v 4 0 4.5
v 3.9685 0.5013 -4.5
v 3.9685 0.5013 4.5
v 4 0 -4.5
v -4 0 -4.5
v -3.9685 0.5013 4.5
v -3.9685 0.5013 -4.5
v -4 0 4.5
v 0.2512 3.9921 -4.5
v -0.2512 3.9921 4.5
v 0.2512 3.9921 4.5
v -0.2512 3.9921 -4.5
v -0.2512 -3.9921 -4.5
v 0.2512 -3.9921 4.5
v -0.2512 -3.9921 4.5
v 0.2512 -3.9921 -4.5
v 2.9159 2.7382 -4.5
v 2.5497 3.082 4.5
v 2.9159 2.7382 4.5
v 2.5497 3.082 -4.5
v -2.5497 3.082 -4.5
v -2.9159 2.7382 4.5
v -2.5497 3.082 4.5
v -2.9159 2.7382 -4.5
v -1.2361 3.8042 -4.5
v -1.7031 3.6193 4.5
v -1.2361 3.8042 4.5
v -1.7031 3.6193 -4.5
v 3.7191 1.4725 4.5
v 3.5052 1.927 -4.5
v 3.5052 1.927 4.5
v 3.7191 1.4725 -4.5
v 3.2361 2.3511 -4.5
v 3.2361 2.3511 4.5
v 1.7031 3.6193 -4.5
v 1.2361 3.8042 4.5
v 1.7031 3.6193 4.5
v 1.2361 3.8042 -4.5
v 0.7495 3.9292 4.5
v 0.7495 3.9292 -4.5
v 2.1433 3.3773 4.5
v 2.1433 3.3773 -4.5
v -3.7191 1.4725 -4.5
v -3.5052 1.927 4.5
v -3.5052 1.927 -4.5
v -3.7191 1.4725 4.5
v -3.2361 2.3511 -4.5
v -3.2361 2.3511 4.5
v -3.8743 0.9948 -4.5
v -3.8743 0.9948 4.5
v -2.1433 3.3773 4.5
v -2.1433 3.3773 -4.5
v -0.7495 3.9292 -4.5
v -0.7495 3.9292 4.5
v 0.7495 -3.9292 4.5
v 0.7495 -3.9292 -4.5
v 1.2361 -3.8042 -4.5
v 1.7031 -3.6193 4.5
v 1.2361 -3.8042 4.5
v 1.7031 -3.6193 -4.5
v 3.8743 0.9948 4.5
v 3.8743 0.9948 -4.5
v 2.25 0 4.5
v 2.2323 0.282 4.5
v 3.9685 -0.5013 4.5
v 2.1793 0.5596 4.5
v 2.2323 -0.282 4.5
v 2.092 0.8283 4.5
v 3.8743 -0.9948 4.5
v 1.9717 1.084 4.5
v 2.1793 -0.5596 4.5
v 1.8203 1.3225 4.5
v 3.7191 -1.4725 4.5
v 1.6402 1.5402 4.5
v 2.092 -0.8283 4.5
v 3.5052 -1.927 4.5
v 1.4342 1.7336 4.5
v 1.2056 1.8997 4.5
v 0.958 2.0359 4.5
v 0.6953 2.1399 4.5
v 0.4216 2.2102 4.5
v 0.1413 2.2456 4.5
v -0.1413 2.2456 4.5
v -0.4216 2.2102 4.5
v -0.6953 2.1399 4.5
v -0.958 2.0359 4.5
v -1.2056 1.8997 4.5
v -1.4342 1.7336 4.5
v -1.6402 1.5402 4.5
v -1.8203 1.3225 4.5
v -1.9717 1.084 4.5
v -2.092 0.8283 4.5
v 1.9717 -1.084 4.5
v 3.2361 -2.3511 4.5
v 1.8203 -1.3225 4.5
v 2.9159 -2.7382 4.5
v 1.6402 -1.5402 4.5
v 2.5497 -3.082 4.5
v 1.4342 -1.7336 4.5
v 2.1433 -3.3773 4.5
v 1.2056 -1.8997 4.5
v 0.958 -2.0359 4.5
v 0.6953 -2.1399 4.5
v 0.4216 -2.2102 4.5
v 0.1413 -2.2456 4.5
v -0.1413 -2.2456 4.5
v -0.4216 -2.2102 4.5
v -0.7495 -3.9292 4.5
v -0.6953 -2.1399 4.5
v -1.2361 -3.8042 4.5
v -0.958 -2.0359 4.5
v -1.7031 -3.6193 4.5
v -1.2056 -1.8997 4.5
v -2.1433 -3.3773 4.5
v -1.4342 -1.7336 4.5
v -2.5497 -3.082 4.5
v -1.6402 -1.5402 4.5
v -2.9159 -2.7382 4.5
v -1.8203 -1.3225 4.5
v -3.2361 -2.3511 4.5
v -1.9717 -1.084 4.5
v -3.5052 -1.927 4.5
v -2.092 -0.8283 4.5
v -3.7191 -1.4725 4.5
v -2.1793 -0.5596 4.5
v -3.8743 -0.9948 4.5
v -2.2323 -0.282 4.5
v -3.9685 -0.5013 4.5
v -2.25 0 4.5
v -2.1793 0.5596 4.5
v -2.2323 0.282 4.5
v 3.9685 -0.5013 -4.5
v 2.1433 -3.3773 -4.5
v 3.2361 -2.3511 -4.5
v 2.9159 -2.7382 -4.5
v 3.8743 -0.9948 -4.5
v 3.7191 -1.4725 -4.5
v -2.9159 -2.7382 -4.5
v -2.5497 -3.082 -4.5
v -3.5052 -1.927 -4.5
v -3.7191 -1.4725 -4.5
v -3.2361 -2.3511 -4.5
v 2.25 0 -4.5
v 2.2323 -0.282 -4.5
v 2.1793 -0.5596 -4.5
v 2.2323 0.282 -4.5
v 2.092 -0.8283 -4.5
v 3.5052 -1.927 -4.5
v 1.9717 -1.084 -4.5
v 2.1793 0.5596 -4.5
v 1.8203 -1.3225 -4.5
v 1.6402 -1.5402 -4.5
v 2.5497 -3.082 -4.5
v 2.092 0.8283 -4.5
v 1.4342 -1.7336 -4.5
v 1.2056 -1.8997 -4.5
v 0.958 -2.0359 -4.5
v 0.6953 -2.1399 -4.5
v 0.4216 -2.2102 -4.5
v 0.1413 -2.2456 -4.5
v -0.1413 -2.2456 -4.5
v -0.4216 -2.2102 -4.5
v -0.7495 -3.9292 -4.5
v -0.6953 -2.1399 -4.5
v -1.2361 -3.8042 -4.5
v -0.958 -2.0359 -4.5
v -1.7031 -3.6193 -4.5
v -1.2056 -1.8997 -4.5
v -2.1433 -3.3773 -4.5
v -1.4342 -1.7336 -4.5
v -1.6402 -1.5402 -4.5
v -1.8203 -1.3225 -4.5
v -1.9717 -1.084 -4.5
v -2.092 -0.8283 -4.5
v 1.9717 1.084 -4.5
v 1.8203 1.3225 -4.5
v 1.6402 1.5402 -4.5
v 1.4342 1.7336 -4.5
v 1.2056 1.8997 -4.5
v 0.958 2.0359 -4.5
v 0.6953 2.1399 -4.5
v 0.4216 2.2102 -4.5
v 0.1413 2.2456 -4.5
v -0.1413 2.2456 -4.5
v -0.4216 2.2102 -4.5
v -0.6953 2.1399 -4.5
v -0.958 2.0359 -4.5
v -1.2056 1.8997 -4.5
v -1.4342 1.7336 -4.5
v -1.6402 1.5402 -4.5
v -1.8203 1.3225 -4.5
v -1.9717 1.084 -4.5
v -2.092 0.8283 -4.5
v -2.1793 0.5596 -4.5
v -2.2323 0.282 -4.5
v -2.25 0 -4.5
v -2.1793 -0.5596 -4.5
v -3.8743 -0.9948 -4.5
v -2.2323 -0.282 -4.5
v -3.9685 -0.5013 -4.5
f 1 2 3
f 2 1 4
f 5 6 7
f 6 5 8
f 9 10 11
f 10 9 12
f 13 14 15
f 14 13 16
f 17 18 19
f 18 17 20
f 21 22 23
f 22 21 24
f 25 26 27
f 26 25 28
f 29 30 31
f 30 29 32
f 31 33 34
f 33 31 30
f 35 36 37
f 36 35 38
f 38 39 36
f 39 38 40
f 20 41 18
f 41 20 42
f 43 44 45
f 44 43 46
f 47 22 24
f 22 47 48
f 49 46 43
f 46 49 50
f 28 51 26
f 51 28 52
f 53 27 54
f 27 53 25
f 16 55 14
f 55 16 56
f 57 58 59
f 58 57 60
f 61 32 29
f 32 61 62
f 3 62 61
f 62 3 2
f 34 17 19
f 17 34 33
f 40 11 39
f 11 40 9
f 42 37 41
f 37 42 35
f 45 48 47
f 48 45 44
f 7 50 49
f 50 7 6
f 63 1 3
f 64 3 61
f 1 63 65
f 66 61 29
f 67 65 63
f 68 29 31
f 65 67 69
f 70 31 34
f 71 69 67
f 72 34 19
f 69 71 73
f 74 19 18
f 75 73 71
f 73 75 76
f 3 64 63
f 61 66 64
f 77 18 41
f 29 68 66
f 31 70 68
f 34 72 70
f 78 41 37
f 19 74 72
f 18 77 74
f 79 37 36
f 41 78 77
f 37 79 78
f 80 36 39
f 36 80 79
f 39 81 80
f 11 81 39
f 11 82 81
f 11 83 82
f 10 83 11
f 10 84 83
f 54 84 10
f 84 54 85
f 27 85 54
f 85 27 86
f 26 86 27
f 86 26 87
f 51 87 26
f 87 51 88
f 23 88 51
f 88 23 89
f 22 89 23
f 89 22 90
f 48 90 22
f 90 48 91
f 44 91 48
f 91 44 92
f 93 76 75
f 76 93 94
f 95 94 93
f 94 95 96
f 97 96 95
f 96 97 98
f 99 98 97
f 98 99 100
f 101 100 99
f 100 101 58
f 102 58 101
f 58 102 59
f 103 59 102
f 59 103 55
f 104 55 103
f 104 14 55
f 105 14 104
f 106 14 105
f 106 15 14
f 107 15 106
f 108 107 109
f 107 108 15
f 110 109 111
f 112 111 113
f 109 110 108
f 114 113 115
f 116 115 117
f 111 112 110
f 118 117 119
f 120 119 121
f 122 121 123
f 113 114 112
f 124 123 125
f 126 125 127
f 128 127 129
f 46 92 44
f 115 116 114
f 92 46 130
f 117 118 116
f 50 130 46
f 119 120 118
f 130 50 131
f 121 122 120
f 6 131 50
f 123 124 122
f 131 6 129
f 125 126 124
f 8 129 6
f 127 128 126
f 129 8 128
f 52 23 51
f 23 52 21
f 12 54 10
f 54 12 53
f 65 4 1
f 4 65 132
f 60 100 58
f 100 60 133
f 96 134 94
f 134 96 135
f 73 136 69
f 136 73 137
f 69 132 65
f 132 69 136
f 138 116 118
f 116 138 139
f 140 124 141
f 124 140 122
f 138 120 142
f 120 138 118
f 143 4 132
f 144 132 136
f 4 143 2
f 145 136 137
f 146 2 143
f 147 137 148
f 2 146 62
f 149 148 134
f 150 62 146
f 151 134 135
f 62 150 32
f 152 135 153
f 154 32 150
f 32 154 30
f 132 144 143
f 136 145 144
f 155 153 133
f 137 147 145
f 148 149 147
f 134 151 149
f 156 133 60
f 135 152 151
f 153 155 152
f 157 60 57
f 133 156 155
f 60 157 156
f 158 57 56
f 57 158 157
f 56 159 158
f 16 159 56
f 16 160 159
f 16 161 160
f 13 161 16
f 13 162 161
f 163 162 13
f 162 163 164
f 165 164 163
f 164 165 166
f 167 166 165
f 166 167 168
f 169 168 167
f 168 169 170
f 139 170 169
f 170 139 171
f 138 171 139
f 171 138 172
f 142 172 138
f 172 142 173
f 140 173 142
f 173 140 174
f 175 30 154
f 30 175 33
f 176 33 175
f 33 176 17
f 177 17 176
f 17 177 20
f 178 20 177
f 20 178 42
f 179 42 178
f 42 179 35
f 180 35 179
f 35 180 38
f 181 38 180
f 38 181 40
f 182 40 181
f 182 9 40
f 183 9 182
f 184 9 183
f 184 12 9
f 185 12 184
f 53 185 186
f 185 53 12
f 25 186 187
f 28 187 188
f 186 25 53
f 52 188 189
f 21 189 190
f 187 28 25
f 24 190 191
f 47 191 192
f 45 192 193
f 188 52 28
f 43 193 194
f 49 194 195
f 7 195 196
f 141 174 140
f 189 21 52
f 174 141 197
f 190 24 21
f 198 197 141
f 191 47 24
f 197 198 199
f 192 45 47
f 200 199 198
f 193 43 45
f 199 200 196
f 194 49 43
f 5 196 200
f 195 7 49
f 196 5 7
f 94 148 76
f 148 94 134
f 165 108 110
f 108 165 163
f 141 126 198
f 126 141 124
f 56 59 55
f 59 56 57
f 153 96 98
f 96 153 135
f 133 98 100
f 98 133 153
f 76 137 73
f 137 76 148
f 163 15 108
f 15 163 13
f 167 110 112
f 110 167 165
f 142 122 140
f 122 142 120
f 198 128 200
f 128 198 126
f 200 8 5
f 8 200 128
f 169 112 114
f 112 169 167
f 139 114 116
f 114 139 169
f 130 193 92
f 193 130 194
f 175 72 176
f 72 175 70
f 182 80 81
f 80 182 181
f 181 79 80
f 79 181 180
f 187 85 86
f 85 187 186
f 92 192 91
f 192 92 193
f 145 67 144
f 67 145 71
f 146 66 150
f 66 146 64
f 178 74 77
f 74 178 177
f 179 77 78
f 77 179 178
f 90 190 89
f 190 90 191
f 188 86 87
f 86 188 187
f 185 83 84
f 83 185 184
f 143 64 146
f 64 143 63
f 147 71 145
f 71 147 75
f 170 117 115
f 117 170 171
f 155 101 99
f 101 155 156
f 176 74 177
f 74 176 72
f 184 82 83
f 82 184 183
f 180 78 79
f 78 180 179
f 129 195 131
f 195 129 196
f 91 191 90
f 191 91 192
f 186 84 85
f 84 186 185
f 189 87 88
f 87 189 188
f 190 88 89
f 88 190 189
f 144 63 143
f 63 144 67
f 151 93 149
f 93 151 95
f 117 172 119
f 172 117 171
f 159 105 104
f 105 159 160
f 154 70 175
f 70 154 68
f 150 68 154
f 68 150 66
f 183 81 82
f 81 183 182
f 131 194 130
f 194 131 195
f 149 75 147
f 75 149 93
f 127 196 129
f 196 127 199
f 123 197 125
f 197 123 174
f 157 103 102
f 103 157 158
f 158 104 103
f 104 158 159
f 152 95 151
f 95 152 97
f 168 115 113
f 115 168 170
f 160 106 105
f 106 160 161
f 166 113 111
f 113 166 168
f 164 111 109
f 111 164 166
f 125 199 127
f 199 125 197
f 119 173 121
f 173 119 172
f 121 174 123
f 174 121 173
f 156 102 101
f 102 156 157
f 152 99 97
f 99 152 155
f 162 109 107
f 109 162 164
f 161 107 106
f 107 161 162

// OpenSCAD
$fn = 50;


difference() {
	union() {
		translate(v = [0, 0, -4.5000000000]) {
			cylinder(h = 9, r = 4.0000000000);
		}
	}
	union() {
		translate(v = [0, 0, -100.0000000000]) {
			cylinder(h = 200, r = 2.2500000000);
		}
	}
}
